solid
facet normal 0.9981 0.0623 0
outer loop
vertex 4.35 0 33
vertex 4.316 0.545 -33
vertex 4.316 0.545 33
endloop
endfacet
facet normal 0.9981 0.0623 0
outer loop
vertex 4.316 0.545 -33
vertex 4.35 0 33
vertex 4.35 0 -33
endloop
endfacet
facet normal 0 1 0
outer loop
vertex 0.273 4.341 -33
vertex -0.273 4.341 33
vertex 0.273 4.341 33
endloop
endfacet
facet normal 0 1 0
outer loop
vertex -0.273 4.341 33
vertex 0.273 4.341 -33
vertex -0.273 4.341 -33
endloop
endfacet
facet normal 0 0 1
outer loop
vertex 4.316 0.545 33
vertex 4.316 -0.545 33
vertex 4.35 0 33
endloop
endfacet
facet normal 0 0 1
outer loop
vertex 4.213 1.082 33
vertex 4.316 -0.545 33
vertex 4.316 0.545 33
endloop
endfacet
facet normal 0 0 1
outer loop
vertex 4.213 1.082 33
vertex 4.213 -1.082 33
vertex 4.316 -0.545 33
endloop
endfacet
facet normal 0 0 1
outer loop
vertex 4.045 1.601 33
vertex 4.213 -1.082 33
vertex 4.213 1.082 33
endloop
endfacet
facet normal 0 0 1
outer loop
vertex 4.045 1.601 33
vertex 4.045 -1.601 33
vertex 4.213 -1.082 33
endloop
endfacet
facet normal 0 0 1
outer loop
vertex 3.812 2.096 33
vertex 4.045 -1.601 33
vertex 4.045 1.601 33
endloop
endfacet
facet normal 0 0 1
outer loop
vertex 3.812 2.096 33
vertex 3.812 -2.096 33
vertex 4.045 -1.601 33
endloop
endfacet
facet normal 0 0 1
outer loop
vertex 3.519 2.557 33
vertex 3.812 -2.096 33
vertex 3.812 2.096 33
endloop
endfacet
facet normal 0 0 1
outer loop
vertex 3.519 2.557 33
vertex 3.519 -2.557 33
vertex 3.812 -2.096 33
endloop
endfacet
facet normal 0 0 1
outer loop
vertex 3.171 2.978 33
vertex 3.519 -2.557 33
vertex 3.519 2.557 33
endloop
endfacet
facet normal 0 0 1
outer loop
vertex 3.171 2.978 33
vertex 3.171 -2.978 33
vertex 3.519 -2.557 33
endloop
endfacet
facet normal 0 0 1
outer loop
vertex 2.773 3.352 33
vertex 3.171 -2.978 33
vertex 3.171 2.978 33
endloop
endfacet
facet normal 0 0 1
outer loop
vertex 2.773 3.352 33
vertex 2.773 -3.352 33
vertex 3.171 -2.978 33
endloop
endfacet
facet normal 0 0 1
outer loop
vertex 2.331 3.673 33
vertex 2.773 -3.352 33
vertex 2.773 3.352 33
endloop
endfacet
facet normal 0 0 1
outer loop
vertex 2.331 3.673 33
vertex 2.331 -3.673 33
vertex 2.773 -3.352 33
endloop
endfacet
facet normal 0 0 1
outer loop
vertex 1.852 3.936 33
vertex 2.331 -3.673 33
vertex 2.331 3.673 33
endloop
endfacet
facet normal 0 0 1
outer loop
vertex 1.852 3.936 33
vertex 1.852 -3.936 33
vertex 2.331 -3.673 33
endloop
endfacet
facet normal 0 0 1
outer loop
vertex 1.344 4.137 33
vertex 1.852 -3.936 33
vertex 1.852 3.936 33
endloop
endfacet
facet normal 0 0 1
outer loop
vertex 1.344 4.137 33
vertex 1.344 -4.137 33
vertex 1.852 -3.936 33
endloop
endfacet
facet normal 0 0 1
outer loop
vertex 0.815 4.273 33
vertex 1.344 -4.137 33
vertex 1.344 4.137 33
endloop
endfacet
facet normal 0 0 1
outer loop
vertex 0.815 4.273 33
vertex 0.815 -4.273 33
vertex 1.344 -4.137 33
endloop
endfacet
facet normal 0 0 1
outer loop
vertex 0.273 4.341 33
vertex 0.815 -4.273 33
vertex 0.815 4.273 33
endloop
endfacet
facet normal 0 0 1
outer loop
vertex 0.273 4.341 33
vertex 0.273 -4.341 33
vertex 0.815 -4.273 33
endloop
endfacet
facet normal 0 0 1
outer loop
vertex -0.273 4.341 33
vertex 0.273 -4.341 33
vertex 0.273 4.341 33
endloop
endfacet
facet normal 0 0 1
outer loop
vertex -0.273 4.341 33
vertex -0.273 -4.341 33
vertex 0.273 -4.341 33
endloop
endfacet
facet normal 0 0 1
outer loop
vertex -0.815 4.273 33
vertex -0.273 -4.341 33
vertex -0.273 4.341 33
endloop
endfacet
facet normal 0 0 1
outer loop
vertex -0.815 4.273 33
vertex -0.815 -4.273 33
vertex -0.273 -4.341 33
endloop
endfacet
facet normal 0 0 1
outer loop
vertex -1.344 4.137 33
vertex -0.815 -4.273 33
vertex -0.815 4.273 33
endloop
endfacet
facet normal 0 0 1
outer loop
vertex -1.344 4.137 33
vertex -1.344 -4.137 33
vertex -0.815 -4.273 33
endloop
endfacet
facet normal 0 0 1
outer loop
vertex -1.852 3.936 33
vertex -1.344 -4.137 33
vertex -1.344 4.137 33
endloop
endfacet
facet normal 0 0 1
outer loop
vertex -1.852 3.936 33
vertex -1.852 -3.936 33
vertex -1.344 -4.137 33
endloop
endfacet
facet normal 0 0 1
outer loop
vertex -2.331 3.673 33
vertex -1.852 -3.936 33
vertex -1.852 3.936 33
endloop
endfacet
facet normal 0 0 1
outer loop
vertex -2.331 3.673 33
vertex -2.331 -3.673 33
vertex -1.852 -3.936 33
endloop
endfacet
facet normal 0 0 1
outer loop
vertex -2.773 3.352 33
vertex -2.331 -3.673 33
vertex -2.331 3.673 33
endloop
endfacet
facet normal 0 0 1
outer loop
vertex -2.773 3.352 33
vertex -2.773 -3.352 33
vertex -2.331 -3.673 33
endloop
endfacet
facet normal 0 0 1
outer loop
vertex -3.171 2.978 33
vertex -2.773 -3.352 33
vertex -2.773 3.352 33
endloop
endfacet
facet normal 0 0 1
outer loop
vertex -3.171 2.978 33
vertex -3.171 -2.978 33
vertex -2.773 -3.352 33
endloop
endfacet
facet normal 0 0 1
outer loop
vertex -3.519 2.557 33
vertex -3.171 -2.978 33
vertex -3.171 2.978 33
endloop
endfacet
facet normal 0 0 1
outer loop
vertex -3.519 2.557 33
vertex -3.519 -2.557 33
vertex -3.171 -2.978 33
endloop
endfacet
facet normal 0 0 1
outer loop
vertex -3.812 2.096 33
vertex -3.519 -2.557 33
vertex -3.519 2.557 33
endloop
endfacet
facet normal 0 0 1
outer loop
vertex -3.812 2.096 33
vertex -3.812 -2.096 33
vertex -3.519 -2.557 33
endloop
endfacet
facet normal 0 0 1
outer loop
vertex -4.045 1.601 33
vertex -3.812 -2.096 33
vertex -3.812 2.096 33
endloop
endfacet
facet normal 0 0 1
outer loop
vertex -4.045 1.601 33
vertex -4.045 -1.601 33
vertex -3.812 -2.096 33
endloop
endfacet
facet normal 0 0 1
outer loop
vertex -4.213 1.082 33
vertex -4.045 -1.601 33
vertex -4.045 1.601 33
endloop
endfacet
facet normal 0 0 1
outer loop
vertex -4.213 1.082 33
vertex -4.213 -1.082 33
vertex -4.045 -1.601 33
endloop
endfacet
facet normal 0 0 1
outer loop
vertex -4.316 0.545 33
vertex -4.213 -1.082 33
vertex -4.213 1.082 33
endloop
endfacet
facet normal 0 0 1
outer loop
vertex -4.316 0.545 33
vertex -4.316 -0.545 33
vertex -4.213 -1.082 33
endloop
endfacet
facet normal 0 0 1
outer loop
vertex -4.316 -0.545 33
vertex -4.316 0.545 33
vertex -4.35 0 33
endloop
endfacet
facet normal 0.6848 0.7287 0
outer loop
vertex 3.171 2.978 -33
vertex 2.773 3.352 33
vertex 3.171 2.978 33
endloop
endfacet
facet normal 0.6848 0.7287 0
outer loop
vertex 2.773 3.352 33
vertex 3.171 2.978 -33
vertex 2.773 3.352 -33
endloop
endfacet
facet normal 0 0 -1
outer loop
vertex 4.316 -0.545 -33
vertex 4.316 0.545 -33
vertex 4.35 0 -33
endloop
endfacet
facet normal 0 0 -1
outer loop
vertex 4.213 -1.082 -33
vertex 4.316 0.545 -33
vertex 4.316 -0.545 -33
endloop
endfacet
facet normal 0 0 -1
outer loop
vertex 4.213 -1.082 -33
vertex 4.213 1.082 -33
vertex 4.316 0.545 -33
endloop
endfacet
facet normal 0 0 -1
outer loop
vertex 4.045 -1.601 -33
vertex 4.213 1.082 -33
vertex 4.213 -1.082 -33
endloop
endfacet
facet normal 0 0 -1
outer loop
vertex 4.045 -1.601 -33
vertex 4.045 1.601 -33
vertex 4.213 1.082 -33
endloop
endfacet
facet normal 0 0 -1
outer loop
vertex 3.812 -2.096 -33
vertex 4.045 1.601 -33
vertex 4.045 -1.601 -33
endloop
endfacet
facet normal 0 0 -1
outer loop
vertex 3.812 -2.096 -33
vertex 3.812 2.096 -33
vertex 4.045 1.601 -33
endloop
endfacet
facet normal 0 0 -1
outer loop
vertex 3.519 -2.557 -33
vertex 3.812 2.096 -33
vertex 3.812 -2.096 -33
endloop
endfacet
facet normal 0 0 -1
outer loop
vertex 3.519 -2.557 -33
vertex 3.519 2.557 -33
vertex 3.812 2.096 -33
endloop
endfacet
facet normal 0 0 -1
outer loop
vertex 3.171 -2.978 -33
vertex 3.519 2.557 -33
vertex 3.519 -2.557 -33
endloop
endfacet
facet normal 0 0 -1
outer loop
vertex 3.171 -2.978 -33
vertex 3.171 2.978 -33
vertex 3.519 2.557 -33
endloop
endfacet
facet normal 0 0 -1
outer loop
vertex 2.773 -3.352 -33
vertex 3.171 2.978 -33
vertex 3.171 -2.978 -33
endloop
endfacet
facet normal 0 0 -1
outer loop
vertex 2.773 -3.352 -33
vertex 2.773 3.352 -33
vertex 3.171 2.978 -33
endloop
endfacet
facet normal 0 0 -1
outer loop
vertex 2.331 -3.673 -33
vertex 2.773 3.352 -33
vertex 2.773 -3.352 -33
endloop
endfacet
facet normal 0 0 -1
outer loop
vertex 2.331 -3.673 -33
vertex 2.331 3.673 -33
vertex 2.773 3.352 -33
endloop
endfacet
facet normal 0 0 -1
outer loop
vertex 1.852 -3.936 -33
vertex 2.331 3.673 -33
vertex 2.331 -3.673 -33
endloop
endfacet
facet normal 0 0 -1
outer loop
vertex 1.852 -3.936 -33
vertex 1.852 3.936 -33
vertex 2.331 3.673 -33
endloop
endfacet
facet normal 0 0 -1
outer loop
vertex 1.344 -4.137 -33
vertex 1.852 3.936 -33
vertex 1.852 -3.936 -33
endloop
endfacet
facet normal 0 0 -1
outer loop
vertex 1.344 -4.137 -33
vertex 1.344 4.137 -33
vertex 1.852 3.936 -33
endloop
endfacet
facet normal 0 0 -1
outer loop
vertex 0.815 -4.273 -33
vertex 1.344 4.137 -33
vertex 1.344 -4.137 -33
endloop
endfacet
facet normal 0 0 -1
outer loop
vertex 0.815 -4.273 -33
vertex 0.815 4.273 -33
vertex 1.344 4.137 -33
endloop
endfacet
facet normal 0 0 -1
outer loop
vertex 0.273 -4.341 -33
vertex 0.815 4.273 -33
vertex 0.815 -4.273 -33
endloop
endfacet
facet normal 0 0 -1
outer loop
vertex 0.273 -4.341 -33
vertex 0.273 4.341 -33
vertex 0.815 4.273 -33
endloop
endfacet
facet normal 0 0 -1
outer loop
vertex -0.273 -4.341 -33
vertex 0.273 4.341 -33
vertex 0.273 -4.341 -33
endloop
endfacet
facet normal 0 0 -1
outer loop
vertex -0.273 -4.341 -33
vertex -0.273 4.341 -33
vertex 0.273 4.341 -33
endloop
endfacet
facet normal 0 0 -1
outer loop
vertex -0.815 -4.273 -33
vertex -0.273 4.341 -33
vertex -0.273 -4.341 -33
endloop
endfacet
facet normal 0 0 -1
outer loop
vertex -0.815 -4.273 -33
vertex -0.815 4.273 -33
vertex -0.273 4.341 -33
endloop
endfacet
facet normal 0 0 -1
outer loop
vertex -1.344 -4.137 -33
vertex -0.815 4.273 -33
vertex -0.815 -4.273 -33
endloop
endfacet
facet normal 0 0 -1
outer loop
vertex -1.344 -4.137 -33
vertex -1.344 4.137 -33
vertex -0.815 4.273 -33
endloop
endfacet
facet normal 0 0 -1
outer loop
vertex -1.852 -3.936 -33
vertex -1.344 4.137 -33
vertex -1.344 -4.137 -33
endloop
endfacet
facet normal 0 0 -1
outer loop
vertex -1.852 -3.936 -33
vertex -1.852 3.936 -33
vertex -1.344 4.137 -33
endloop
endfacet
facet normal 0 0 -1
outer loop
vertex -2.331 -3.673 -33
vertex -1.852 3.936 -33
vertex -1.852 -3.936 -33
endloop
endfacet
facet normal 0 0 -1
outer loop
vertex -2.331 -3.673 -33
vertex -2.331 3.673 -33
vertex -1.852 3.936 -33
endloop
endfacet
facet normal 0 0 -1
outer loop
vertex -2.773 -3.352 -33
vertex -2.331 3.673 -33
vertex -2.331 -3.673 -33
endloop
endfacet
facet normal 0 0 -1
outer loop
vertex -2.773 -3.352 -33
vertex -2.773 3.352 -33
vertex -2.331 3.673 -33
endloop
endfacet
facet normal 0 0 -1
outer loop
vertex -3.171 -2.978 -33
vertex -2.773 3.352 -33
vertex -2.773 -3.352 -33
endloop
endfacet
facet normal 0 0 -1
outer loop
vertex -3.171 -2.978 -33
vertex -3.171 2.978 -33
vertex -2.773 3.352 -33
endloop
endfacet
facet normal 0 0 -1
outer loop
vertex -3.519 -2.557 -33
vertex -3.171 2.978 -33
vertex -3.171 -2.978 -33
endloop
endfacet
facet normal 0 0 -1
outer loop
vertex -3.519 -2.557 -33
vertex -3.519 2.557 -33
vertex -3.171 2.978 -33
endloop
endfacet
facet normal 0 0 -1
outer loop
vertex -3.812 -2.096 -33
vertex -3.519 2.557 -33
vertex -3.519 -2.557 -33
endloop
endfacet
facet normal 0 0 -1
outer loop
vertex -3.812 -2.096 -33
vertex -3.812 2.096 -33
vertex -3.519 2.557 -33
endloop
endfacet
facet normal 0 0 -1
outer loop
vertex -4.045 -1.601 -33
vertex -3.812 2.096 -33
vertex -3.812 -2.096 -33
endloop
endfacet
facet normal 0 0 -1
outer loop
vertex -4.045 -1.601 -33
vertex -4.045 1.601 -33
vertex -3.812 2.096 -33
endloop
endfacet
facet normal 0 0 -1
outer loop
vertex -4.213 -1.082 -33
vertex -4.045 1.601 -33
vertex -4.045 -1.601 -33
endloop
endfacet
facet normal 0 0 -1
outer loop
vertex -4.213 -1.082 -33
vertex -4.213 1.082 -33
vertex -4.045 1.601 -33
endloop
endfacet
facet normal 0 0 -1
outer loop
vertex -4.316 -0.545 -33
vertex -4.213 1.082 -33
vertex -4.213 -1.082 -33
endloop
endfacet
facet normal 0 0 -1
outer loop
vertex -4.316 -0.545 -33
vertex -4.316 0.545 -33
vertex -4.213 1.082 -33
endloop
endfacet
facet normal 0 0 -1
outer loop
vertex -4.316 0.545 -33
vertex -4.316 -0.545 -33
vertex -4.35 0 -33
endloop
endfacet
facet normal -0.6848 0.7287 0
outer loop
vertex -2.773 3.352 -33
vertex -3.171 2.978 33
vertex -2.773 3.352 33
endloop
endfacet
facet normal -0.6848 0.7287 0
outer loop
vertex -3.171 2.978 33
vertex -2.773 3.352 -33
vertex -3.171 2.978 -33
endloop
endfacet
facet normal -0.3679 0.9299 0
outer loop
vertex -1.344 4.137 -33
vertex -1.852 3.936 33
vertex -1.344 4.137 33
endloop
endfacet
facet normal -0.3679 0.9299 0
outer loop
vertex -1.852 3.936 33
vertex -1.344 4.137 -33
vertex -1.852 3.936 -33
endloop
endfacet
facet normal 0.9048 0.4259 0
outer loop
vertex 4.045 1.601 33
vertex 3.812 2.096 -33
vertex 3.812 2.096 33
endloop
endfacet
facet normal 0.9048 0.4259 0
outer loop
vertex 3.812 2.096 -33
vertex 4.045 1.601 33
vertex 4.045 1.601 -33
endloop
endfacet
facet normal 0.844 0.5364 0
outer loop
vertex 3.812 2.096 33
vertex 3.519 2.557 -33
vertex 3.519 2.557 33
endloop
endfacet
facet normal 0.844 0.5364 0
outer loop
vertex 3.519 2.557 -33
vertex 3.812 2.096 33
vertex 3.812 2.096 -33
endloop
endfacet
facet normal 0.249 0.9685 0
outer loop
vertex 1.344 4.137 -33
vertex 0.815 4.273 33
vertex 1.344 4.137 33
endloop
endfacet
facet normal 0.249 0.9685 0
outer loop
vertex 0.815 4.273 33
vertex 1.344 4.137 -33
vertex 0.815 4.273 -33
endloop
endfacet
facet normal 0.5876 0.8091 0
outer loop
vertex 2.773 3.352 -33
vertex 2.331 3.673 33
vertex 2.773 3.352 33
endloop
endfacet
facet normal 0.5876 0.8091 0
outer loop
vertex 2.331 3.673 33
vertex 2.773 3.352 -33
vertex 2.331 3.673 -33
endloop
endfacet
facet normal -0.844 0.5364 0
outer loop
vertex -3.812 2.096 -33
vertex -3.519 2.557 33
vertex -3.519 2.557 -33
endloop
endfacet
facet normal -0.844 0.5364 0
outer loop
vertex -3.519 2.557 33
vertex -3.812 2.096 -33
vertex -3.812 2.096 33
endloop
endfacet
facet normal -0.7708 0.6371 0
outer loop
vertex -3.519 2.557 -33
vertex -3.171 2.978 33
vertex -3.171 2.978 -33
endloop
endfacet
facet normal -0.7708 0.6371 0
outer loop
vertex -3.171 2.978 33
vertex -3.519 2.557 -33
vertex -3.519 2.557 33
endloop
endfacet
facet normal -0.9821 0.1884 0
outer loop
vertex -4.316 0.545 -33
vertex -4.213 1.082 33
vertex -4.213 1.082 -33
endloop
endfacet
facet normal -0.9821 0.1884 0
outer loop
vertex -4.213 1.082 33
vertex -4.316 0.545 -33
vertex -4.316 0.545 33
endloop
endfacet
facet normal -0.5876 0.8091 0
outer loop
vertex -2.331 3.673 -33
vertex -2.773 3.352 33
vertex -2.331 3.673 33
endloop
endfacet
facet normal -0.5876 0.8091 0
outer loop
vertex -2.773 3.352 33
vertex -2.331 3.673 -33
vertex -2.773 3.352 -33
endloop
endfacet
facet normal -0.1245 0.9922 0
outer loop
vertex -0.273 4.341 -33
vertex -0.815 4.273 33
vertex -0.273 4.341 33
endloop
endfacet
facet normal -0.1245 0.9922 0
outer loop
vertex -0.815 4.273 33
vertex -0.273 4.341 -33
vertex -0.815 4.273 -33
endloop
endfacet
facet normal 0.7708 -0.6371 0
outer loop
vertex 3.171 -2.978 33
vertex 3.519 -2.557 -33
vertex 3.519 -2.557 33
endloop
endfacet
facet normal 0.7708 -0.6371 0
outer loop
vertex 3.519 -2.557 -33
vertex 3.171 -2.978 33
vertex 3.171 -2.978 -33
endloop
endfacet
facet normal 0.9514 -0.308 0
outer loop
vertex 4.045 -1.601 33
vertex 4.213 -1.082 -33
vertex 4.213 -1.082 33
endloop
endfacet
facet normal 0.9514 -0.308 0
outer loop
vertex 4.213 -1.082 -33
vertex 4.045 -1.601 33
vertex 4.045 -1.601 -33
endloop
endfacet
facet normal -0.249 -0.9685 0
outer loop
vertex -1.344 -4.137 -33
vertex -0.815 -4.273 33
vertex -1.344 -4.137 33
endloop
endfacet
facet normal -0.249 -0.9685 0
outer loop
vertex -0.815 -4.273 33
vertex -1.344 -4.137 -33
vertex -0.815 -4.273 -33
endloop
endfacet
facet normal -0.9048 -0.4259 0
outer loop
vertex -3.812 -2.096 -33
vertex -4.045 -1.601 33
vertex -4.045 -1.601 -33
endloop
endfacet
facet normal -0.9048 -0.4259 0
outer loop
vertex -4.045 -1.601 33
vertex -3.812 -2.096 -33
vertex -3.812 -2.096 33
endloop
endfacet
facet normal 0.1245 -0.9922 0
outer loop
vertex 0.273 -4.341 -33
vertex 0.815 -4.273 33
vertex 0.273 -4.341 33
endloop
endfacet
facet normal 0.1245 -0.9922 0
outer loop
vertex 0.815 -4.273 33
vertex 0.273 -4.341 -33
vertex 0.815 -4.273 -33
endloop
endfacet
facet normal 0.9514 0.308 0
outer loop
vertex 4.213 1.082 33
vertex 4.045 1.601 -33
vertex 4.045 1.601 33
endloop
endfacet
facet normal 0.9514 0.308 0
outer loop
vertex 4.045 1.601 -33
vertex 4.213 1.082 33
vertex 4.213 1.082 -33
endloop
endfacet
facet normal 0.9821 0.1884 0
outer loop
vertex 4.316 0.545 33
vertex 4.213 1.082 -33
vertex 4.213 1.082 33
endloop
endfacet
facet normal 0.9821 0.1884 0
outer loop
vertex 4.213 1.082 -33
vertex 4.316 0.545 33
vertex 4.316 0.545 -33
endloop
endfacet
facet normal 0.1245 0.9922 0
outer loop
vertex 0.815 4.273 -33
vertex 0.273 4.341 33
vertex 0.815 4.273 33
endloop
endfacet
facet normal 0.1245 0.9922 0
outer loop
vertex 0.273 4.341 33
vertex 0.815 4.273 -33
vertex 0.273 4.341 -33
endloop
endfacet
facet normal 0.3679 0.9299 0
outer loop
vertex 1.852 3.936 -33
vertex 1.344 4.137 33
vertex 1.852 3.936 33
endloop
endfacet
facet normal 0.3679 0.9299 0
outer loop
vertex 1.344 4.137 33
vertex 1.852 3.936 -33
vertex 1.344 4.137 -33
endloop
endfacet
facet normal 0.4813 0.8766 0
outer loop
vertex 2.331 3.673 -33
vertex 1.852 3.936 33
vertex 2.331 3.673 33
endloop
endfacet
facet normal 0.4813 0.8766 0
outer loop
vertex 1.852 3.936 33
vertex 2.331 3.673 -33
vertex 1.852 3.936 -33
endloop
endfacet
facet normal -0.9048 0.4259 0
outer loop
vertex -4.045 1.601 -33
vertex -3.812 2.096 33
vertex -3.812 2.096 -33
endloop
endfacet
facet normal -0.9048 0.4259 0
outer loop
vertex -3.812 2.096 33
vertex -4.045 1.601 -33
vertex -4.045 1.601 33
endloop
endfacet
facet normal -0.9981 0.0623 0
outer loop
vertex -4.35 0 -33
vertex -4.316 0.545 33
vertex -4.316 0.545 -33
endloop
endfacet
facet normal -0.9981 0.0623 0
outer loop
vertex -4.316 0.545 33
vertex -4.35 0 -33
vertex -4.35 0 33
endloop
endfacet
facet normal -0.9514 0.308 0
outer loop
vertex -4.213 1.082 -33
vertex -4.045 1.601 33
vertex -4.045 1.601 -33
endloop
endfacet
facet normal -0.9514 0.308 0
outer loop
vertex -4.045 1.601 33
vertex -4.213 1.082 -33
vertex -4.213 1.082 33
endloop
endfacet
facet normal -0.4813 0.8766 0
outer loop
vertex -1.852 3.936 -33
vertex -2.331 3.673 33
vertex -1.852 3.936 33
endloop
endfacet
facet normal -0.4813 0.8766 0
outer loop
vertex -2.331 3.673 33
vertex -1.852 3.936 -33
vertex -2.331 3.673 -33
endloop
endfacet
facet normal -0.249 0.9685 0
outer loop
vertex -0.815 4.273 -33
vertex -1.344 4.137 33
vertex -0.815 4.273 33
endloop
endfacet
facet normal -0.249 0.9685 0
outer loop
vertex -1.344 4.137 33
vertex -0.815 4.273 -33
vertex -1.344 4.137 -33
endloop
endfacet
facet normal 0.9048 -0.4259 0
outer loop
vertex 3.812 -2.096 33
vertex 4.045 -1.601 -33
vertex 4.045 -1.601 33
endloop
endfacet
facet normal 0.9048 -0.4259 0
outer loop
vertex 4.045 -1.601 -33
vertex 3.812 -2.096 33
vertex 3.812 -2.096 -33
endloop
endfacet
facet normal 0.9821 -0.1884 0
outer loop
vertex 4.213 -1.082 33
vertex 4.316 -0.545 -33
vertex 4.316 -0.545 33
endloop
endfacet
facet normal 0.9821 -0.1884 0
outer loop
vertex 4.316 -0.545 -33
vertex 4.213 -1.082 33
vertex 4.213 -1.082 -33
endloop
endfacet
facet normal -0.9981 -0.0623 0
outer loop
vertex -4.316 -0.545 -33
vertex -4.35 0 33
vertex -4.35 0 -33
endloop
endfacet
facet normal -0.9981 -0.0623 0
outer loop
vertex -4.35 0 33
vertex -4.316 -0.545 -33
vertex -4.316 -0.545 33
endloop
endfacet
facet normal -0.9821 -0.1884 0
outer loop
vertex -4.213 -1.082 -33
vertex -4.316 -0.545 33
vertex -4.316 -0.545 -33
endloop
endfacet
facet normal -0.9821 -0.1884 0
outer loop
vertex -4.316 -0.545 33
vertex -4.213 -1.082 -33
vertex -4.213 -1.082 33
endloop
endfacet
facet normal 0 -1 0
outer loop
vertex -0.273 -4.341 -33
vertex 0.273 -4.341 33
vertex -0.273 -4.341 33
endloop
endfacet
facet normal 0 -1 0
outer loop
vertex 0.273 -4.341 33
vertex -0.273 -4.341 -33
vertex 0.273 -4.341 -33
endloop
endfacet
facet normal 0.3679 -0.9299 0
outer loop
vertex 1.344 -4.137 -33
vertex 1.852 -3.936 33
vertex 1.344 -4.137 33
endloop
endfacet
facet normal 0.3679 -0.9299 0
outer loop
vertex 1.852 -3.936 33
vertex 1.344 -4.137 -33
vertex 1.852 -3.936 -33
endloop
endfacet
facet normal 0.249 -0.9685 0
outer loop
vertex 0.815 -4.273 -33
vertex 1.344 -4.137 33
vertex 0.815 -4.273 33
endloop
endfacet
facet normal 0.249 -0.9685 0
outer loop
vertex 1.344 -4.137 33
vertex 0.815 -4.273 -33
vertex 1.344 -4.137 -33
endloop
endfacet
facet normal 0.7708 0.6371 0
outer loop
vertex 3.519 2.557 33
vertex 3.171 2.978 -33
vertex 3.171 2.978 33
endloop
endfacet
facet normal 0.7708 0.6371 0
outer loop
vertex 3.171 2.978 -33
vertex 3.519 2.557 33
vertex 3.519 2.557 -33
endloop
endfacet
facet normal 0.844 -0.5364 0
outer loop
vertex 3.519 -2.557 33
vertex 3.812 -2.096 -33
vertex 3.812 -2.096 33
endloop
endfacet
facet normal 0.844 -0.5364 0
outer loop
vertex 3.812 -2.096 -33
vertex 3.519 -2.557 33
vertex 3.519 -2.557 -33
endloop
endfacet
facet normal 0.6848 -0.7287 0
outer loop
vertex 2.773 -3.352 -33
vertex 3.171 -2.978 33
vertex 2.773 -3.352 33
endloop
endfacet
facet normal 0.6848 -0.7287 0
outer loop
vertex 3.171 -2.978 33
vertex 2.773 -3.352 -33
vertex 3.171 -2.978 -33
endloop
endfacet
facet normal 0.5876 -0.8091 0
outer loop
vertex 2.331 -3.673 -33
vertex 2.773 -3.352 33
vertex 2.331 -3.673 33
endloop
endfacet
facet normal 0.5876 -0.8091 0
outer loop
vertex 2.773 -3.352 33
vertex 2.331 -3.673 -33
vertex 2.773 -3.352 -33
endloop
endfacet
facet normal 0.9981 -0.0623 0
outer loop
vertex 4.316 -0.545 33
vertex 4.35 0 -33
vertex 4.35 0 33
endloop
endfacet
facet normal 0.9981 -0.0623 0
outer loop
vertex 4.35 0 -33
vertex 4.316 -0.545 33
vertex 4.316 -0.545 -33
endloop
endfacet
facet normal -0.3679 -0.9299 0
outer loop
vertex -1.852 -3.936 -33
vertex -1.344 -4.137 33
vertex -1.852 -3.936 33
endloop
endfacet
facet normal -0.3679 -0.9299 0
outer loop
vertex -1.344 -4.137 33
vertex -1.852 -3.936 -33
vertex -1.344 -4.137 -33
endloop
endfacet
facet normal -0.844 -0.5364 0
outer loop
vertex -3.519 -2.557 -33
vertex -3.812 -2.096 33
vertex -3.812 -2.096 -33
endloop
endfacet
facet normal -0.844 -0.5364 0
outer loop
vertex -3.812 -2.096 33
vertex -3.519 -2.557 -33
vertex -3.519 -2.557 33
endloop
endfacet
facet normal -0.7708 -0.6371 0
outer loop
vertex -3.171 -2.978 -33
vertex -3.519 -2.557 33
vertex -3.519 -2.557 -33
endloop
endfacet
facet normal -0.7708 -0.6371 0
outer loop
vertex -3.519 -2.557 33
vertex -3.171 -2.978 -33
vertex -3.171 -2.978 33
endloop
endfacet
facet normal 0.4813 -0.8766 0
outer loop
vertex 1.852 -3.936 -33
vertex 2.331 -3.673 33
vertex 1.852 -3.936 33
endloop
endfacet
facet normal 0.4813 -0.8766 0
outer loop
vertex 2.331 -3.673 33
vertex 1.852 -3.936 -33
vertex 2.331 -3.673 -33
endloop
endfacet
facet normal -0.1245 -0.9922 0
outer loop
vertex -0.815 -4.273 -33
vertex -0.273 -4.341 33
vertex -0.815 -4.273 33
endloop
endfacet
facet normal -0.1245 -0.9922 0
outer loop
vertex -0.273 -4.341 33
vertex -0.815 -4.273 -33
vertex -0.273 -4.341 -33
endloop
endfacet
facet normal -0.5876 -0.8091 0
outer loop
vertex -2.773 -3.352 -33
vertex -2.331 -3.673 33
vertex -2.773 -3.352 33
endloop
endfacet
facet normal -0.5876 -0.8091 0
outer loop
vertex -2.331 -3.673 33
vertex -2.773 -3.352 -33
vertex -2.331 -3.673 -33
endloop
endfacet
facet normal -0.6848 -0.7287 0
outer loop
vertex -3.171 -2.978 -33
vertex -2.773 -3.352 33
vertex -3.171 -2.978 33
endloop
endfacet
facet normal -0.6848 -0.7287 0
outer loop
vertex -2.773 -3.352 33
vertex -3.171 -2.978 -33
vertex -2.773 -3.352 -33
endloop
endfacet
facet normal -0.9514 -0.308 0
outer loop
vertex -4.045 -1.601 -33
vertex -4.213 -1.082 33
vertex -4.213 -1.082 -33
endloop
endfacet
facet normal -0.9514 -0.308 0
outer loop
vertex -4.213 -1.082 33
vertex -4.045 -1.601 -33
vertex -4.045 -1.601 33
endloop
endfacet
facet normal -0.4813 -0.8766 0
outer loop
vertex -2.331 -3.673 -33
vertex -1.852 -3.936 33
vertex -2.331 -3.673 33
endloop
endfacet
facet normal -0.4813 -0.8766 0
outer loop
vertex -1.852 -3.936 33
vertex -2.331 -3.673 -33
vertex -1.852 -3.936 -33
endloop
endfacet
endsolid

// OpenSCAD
$fn = 50;


difference() {
	union() {
		translate(v = [0, 0, -33.0000000000]) {
			cylinder(h = 66, r = 4.3500000000);
		}
	}
	union() {
		translate(v = [0, 0, -100.0000000000]) {
			cylinder(h = 200, r = 0);
		}
	}
}
